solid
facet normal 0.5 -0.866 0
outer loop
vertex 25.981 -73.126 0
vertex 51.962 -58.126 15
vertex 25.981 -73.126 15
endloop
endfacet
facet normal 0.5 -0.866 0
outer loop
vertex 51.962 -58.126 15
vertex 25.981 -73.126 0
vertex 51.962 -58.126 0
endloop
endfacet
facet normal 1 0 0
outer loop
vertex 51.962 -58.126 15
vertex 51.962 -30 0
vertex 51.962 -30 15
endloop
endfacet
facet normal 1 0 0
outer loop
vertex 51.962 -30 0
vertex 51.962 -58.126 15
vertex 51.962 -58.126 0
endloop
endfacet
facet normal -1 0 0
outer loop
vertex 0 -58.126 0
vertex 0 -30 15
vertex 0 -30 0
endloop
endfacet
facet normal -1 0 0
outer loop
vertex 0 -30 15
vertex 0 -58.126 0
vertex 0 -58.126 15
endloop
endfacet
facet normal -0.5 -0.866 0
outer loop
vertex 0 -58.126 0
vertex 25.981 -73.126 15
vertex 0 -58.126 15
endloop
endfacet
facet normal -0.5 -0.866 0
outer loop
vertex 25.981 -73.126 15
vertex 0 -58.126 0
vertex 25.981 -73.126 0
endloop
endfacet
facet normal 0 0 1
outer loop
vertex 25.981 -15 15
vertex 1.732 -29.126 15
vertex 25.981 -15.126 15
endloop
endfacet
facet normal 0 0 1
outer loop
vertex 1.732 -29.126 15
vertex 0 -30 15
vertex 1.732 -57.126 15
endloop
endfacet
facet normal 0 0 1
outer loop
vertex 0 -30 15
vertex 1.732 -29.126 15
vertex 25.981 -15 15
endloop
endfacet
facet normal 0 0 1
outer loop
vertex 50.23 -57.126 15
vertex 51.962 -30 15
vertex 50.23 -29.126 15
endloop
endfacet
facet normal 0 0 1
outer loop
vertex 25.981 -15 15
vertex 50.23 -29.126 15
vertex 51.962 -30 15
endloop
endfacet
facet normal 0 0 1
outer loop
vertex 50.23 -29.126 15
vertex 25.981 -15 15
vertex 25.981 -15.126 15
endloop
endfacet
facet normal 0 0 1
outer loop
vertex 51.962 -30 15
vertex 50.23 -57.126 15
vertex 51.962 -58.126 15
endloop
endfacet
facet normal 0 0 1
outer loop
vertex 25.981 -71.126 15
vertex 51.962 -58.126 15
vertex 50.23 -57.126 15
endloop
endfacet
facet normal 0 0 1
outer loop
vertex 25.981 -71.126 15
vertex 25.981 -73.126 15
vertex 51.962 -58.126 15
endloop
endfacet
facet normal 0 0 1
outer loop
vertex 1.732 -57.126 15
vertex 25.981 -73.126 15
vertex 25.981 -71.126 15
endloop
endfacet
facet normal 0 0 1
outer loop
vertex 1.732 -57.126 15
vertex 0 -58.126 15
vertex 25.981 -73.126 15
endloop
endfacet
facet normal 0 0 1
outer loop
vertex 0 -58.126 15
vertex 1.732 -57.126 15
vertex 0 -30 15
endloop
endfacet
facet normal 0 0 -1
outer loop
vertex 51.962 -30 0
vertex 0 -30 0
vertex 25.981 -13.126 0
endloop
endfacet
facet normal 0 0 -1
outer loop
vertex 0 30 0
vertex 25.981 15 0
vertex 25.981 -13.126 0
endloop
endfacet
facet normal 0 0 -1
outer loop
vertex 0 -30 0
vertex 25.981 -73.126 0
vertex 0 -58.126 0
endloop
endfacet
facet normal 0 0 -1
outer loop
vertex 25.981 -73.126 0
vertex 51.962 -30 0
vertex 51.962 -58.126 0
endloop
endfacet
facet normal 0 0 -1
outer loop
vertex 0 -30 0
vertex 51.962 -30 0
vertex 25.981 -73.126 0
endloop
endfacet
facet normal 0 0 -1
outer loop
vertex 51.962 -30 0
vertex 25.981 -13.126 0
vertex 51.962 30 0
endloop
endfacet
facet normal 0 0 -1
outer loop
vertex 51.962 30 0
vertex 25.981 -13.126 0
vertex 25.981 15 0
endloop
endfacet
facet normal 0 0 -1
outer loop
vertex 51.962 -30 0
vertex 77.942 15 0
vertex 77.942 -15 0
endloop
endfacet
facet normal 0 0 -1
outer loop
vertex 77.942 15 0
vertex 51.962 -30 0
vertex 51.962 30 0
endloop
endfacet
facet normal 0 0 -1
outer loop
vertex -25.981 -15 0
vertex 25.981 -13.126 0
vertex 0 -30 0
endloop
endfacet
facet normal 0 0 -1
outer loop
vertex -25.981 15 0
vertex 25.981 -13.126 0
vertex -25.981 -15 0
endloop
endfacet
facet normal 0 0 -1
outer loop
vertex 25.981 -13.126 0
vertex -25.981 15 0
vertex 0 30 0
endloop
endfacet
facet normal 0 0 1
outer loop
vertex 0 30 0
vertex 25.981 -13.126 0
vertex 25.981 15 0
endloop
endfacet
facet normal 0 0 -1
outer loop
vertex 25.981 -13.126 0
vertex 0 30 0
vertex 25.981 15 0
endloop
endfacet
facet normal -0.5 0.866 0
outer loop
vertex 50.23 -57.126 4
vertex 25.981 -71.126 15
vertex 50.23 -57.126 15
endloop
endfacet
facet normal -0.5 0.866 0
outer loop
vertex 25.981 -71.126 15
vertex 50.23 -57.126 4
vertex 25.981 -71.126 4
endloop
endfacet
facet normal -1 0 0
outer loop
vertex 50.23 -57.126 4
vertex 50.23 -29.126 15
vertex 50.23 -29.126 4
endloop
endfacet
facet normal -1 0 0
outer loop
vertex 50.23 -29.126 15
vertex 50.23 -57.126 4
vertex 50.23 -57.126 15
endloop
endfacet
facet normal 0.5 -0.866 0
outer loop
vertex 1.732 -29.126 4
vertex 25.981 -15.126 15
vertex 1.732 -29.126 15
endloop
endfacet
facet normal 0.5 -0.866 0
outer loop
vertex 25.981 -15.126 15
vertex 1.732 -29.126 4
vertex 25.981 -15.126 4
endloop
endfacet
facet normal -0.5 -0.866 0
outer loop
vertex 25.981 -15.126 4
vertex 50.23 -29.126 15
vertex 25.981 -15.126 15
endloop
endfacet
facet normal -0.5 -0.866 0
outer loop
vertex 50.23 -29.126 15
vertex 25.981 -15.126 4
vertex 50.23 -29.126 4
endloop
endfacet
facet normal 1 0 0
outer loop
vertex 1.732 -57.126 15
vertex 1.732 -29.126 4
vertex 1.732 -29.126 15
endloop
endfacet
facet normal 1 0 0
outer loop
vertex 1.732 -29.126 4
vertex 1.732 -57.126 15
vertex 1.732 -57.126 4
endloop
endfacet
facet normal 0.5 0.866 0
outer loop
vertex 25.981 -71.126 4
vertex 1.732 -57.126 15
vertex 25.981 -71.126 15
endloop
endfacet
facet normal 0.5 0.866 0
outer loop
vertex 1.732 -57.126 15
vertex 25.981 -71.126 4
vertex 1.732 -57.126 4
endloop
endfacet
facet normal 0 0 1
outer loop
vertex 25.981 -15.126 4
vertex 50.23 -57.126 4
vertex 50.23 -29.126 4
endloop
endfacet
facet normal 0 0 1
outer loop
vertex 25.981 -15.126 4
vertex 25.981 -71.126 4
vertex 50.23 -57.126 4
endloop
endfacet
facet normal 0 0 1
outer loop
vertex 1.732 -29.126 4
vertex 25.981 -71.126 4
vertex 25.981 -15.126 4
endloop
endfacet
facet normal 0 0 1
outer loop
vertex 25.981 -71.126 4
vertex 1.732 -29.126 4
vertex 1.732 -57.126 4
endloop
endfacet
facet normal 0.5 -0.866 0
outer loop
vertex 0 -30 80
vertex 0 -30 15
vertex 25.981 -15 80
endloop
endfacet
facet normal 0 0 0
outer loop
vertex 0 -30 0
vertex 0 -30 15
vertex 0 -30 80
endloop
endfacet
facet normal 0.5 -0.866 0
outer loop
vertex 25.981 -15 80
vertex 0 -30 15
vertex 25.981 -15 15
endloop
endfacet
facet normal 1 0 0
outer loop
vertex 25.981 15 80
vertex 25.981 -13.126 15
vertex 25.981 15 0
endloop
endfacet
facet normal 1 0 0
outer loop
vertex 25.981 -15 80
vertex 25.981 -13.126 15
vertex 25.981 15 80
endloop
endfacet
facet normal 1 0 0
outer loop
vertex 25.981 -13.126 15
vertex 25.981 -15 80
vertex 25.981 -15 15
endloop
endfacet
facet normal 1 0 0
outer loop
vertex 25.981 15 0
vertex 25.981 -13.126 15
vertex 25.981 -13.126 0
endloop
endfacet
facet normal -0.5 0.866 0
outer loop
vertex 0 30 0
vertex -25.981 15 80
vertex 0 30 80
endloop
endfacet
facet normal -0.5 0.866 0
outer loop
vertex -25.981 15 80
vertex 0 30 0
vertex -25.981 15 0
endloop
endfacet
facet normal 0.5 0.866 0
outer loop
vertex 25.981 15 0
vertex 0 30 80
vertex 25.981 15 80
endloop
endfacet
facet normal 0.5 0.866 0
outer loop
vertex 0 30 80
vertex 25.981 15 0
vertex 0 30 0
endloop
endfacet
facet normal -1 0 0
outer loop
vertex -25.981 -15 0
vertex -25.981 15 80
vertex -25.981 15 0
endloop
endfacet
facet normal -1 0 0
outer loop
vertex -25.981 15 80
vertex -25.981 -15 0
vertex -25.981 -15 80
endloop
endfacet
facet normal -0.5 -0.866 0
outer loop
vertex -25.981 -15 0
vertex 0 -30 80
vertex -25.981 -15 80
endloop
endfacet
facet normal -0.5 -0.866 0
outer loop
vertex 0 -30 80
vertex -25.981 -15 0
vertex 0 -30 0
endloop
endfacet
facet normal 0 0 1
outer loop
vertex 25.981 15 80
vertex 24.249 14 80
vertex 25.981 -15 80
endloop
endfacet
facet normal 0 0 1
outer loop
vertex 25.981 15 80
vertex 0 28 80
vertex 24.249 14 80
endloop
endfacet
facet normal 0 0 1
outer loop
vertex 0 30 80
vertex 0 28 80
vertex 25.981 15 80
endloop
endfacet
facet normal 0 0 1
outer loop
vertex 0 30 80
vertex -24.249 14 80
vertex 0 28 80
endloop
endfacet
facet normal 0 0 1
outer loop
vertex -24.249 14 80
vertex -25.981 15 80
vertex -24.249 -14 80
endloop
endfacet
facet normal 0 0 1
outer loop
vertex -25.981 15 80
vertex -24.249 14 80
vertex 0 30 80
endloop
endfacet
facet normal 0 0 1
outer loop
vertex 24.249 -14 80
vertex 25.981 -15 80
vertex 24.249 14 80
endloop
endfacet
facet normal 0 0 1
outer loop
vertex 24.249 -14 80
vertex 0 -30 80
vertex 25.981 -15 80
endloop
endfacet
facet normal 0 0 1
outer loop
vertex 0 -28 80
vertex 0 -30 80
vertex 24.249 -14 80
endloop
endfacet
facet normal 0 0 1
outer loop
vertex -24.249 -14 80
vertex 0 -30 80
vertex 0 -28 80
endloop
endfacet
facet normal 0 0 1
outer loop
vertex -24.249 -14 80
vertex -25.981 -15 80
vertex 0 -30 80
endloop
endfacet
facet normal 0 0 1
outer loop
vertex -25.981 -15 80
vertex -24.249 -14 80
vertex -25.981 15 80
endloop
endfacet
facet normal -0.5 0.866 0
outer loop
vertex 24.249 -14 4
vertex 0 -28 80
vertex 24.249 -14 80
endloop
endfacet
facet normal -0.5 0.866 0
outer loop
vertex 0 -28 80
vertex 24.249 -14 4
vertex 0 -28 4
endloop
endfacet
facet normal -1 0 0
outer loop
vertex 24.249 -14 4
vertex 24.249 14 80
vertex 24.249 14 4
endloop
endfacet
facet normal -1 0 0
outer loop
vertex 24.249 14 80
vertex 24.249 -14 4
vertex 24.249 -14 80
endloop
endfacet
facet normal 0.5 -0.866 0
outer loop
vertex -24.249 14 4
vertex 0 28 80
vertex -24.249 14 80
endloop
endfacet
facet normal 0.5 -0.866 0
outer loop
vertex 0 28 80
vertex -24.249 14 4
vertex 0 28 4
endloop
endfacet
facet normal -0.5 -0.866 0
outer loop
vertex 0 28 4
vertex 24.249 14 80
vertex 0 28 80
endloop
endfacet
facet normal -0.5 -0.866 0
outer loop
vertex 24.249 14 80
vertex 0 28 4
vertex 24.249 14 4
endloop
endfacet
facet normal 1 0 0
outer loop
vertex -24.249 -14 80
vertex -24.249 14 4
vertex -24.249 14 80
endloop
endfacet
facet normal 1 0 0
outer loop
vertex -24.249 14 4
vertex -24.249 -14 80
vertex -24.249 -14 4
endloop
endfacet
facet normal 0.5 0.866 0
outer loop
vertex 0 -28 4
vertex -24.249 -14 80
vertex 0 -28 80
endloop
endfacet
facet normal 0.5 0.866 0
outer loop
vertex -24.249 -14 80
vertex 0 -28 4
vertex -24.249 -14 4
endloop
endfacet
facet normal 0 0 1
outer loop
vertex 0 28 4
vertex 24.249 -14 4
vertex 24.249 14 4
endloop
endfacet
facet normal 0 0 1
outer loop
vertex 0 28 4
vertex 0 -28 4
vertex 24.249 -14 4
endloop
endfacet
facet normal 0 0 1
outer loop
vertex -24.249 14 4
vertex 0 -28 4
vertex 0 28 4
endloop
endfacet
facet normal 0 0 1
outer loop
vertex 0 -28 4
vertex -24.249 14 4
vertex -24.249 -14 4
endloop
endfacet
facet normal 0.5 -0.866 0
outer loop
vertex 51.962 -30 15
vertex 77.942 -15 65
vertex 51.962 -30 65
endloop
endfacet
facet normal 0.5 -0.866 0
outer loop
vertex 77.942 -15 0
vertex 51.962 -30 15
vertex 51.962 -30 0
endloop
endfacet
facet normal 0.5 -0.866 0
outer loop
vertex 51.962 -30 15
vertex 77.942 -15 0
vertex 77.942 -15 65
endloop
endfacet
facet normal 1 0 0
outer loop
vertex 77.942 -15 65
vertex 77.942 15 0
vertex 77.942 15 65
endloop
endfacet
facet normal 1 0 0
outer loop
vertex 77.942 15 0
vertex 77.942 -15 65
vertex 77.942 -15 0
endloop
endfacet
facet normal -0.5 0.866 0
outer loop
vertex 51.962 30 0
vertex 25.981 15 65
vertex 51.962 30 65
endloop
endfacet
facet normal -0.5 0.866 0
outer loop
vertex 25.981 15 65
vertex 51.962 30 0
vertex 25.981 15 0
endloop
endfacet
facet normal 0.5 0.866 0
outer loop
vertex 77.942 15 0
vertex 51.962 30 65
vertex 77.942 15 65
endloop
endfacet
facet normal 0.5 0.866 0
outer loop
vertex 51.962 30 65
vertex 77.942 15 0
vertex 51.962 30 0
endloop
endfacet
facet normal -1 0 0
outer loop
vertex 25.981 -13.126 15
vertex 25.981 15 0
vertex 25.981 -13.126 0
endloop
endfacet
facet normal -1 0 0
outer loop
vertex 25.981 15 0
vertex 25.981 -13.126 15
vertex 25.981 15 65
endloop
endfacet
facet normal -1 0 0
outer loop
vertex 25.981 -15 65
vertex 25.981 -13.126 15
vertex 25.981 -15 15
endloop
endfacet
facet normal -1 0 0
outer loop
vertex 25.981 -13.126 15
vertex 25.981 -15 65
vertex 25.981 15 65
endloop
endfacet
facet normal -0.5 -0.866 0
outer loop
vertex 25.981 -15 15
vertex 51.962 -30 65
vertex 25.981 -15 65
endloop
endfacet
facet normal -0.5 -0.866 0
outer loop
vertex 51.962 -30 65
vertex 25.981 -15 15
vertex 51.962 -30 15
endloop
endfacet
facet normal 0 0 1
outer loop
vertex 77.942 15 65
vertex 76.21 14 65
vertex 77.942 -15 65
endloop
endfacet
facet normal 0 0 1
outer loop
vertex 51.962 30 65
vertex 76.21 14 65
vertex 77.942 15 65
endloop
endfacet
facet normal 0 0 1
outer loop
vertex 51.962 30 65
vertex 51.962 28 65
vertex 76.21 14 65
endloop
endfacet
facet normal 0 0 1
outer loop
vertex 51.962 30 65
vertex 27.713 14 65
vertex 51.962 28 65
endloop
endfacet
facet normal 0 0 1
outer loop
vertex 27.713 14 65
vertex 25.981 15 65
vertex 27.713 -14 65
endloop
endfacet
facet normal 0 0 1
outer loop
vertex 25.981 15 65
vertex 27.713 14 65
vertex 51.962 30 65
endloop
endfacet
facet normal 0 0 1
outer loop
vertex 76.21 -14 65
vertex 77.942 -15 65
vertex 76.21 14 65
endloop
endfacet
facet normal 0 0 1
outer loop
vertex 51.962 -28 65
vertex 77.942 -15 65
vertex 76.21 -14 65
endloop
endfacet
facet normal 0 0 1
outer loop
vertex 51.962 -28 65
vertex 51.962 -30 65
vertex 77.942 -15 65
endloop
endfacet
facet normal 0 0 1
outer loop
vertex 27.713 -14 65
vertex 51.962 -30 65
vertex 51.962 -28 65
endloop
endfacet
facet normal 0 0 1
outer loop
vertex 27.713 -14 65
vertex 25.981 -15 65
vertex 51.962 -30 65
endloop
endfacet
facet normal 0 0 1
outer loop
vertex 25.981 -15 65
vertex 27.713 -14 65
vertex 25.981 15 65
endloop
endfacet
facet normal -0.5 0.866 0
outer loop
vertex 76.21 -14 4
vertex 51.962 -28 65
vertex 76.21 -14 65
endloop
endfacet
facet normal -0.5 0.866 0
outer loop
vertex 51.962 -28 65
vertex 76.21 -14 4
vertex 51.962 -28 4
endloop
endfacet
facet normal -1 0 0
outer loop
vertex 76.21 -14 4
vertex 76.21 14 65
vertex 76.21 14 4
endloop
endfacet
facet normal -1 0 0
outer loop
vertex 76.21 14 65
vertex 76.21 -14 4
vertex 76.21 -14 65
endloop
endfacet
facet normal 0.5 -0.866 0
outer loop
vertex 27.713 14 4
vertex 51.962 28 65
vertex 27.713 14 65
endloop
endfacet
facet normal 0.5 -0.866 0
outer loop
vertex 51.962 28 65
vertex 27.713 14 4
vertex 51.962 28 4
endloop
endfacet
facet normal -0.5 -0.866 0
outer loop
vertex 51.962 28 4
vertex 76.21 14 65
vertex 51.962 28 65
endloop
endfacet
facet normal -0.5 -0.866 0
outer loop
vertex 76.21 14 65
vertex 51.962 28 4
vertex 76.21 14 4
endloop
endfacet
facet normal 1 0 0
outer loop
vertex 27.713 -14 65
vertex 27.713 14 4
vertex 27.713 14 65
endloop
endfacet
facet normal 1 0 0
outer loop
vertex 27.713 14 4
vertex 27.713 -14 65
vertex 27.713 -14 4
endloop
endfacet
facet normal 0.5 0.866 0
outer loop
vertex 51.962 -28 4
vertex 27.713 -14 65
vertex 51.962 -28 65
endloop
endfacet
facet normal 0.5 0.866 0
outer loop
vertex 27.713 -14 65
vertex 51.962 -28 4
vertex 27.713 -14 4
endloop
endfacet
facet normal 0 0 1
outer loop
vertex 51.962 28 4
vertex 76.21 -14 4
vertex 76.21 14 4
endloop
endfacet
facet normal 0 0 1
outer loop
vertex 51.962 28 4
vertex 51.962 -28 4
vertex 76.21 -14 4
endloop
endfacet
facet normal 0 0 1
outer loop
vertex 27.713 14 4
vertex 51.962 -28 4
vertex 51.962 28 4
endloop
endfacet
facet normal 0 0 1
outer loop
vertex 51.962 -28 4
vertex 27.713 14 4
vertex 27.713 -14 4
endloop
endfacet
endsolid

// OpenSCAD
r=30;
h1=80;
h2=65;
h3=15;
w=2;

module boks(r,h,w=w) {
    rotate(30) {
        difference() {
            cylinder(r=r,h=h,$fn=6);
            translate([0,0,w*2]) {
                cylinder(r=r-w,h=h-w*2,$fn=6);
            }
        }
    }
}

boks(r=r,h=h1);
translate([r*sqrt(3),0,0]) {
    boks(r=r,h=h2);
}

translate([r*sqrt(3)/2,-r*sqrt(2)-.7,0]) {
    boks(r=r,h=h3);
}
